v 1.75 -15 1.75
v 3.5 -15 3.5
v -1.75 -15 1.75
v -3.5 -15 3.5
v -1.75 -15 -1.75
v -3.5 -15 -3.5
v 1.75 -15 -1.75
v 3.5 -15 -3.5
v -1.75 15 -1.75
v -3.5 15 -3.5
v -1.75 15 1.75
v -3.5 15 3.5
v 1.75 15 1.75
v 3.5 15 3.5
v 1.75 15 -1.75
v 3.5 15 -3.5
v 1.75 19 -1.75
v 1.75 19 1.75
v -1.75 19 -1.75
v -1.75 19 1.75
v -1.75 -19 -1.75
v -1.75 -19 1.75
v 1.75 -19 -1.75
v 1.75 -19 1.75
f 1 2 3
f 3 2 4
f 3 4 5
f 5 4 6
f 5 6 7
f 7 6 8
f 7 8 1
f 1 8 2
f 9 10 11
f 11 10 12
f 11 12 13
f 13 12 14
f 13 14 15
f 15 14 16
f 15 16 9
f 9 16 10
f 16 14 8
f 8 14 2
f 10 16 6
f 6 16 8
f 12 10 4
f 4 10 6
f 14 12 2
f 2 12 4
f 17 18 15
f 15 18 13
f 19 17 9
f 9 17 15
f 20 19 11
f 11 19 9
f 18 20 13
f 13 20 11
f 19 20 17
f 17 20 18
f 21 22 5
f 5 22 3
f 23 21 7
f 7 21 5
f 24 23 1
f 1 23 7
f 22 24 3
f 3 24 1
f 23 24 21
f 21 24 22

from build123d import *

# Parameters (mm, degrees)
SKETCH1_W           = 7
SKETCH1_H           = 7
BOSS_EXTRUDE1_DEPTH = 15
SKETCH2_W           = 3.5
SKETCH2_H           = 3.5
BOSS_EXTRUDE2_DEPTH = 4
SKETCH3_W           = 3.5
SKETCH3_H           = 3.5
BOSS_EXTRUDE3_DEPTH = 4


with BuildPart() as part:
    # Sketch1 → Boss-Extrude1 (new, symmetric)
    with BuildSketch(Plane(origin=(0, 0, 0), x_dir=(1, 0, 0), z_dir=(0, 1, 0))):
        Rectangle(SKETCH1_W, SKETCH1_H)
    extrude(amount=BOSS_EXTRUDE1_DEPTH, both=True)

    # Sketch2 → Boss-Extrude2 (add)
    with BuildSketch(Plane(origin=(0, 15, 0), x_dir=(1, 0, 0), z_dir=(0, 1, 0))):
        Rectangle(SKETCH2_W, SKETCH2_H)
    extrude(amount=BOSS_EXTRUDE2_DEPTH)

    # Sketch3 → Boss-Extrude3 (add)
    with BuildSketch(Plane.XZ.offset(15)):
        Rectangle(SKETCH3_W, SKETCH3_H)
    extrude(amount=BOSS_EXTRUDE3_DEPTH)


solid = part.part
